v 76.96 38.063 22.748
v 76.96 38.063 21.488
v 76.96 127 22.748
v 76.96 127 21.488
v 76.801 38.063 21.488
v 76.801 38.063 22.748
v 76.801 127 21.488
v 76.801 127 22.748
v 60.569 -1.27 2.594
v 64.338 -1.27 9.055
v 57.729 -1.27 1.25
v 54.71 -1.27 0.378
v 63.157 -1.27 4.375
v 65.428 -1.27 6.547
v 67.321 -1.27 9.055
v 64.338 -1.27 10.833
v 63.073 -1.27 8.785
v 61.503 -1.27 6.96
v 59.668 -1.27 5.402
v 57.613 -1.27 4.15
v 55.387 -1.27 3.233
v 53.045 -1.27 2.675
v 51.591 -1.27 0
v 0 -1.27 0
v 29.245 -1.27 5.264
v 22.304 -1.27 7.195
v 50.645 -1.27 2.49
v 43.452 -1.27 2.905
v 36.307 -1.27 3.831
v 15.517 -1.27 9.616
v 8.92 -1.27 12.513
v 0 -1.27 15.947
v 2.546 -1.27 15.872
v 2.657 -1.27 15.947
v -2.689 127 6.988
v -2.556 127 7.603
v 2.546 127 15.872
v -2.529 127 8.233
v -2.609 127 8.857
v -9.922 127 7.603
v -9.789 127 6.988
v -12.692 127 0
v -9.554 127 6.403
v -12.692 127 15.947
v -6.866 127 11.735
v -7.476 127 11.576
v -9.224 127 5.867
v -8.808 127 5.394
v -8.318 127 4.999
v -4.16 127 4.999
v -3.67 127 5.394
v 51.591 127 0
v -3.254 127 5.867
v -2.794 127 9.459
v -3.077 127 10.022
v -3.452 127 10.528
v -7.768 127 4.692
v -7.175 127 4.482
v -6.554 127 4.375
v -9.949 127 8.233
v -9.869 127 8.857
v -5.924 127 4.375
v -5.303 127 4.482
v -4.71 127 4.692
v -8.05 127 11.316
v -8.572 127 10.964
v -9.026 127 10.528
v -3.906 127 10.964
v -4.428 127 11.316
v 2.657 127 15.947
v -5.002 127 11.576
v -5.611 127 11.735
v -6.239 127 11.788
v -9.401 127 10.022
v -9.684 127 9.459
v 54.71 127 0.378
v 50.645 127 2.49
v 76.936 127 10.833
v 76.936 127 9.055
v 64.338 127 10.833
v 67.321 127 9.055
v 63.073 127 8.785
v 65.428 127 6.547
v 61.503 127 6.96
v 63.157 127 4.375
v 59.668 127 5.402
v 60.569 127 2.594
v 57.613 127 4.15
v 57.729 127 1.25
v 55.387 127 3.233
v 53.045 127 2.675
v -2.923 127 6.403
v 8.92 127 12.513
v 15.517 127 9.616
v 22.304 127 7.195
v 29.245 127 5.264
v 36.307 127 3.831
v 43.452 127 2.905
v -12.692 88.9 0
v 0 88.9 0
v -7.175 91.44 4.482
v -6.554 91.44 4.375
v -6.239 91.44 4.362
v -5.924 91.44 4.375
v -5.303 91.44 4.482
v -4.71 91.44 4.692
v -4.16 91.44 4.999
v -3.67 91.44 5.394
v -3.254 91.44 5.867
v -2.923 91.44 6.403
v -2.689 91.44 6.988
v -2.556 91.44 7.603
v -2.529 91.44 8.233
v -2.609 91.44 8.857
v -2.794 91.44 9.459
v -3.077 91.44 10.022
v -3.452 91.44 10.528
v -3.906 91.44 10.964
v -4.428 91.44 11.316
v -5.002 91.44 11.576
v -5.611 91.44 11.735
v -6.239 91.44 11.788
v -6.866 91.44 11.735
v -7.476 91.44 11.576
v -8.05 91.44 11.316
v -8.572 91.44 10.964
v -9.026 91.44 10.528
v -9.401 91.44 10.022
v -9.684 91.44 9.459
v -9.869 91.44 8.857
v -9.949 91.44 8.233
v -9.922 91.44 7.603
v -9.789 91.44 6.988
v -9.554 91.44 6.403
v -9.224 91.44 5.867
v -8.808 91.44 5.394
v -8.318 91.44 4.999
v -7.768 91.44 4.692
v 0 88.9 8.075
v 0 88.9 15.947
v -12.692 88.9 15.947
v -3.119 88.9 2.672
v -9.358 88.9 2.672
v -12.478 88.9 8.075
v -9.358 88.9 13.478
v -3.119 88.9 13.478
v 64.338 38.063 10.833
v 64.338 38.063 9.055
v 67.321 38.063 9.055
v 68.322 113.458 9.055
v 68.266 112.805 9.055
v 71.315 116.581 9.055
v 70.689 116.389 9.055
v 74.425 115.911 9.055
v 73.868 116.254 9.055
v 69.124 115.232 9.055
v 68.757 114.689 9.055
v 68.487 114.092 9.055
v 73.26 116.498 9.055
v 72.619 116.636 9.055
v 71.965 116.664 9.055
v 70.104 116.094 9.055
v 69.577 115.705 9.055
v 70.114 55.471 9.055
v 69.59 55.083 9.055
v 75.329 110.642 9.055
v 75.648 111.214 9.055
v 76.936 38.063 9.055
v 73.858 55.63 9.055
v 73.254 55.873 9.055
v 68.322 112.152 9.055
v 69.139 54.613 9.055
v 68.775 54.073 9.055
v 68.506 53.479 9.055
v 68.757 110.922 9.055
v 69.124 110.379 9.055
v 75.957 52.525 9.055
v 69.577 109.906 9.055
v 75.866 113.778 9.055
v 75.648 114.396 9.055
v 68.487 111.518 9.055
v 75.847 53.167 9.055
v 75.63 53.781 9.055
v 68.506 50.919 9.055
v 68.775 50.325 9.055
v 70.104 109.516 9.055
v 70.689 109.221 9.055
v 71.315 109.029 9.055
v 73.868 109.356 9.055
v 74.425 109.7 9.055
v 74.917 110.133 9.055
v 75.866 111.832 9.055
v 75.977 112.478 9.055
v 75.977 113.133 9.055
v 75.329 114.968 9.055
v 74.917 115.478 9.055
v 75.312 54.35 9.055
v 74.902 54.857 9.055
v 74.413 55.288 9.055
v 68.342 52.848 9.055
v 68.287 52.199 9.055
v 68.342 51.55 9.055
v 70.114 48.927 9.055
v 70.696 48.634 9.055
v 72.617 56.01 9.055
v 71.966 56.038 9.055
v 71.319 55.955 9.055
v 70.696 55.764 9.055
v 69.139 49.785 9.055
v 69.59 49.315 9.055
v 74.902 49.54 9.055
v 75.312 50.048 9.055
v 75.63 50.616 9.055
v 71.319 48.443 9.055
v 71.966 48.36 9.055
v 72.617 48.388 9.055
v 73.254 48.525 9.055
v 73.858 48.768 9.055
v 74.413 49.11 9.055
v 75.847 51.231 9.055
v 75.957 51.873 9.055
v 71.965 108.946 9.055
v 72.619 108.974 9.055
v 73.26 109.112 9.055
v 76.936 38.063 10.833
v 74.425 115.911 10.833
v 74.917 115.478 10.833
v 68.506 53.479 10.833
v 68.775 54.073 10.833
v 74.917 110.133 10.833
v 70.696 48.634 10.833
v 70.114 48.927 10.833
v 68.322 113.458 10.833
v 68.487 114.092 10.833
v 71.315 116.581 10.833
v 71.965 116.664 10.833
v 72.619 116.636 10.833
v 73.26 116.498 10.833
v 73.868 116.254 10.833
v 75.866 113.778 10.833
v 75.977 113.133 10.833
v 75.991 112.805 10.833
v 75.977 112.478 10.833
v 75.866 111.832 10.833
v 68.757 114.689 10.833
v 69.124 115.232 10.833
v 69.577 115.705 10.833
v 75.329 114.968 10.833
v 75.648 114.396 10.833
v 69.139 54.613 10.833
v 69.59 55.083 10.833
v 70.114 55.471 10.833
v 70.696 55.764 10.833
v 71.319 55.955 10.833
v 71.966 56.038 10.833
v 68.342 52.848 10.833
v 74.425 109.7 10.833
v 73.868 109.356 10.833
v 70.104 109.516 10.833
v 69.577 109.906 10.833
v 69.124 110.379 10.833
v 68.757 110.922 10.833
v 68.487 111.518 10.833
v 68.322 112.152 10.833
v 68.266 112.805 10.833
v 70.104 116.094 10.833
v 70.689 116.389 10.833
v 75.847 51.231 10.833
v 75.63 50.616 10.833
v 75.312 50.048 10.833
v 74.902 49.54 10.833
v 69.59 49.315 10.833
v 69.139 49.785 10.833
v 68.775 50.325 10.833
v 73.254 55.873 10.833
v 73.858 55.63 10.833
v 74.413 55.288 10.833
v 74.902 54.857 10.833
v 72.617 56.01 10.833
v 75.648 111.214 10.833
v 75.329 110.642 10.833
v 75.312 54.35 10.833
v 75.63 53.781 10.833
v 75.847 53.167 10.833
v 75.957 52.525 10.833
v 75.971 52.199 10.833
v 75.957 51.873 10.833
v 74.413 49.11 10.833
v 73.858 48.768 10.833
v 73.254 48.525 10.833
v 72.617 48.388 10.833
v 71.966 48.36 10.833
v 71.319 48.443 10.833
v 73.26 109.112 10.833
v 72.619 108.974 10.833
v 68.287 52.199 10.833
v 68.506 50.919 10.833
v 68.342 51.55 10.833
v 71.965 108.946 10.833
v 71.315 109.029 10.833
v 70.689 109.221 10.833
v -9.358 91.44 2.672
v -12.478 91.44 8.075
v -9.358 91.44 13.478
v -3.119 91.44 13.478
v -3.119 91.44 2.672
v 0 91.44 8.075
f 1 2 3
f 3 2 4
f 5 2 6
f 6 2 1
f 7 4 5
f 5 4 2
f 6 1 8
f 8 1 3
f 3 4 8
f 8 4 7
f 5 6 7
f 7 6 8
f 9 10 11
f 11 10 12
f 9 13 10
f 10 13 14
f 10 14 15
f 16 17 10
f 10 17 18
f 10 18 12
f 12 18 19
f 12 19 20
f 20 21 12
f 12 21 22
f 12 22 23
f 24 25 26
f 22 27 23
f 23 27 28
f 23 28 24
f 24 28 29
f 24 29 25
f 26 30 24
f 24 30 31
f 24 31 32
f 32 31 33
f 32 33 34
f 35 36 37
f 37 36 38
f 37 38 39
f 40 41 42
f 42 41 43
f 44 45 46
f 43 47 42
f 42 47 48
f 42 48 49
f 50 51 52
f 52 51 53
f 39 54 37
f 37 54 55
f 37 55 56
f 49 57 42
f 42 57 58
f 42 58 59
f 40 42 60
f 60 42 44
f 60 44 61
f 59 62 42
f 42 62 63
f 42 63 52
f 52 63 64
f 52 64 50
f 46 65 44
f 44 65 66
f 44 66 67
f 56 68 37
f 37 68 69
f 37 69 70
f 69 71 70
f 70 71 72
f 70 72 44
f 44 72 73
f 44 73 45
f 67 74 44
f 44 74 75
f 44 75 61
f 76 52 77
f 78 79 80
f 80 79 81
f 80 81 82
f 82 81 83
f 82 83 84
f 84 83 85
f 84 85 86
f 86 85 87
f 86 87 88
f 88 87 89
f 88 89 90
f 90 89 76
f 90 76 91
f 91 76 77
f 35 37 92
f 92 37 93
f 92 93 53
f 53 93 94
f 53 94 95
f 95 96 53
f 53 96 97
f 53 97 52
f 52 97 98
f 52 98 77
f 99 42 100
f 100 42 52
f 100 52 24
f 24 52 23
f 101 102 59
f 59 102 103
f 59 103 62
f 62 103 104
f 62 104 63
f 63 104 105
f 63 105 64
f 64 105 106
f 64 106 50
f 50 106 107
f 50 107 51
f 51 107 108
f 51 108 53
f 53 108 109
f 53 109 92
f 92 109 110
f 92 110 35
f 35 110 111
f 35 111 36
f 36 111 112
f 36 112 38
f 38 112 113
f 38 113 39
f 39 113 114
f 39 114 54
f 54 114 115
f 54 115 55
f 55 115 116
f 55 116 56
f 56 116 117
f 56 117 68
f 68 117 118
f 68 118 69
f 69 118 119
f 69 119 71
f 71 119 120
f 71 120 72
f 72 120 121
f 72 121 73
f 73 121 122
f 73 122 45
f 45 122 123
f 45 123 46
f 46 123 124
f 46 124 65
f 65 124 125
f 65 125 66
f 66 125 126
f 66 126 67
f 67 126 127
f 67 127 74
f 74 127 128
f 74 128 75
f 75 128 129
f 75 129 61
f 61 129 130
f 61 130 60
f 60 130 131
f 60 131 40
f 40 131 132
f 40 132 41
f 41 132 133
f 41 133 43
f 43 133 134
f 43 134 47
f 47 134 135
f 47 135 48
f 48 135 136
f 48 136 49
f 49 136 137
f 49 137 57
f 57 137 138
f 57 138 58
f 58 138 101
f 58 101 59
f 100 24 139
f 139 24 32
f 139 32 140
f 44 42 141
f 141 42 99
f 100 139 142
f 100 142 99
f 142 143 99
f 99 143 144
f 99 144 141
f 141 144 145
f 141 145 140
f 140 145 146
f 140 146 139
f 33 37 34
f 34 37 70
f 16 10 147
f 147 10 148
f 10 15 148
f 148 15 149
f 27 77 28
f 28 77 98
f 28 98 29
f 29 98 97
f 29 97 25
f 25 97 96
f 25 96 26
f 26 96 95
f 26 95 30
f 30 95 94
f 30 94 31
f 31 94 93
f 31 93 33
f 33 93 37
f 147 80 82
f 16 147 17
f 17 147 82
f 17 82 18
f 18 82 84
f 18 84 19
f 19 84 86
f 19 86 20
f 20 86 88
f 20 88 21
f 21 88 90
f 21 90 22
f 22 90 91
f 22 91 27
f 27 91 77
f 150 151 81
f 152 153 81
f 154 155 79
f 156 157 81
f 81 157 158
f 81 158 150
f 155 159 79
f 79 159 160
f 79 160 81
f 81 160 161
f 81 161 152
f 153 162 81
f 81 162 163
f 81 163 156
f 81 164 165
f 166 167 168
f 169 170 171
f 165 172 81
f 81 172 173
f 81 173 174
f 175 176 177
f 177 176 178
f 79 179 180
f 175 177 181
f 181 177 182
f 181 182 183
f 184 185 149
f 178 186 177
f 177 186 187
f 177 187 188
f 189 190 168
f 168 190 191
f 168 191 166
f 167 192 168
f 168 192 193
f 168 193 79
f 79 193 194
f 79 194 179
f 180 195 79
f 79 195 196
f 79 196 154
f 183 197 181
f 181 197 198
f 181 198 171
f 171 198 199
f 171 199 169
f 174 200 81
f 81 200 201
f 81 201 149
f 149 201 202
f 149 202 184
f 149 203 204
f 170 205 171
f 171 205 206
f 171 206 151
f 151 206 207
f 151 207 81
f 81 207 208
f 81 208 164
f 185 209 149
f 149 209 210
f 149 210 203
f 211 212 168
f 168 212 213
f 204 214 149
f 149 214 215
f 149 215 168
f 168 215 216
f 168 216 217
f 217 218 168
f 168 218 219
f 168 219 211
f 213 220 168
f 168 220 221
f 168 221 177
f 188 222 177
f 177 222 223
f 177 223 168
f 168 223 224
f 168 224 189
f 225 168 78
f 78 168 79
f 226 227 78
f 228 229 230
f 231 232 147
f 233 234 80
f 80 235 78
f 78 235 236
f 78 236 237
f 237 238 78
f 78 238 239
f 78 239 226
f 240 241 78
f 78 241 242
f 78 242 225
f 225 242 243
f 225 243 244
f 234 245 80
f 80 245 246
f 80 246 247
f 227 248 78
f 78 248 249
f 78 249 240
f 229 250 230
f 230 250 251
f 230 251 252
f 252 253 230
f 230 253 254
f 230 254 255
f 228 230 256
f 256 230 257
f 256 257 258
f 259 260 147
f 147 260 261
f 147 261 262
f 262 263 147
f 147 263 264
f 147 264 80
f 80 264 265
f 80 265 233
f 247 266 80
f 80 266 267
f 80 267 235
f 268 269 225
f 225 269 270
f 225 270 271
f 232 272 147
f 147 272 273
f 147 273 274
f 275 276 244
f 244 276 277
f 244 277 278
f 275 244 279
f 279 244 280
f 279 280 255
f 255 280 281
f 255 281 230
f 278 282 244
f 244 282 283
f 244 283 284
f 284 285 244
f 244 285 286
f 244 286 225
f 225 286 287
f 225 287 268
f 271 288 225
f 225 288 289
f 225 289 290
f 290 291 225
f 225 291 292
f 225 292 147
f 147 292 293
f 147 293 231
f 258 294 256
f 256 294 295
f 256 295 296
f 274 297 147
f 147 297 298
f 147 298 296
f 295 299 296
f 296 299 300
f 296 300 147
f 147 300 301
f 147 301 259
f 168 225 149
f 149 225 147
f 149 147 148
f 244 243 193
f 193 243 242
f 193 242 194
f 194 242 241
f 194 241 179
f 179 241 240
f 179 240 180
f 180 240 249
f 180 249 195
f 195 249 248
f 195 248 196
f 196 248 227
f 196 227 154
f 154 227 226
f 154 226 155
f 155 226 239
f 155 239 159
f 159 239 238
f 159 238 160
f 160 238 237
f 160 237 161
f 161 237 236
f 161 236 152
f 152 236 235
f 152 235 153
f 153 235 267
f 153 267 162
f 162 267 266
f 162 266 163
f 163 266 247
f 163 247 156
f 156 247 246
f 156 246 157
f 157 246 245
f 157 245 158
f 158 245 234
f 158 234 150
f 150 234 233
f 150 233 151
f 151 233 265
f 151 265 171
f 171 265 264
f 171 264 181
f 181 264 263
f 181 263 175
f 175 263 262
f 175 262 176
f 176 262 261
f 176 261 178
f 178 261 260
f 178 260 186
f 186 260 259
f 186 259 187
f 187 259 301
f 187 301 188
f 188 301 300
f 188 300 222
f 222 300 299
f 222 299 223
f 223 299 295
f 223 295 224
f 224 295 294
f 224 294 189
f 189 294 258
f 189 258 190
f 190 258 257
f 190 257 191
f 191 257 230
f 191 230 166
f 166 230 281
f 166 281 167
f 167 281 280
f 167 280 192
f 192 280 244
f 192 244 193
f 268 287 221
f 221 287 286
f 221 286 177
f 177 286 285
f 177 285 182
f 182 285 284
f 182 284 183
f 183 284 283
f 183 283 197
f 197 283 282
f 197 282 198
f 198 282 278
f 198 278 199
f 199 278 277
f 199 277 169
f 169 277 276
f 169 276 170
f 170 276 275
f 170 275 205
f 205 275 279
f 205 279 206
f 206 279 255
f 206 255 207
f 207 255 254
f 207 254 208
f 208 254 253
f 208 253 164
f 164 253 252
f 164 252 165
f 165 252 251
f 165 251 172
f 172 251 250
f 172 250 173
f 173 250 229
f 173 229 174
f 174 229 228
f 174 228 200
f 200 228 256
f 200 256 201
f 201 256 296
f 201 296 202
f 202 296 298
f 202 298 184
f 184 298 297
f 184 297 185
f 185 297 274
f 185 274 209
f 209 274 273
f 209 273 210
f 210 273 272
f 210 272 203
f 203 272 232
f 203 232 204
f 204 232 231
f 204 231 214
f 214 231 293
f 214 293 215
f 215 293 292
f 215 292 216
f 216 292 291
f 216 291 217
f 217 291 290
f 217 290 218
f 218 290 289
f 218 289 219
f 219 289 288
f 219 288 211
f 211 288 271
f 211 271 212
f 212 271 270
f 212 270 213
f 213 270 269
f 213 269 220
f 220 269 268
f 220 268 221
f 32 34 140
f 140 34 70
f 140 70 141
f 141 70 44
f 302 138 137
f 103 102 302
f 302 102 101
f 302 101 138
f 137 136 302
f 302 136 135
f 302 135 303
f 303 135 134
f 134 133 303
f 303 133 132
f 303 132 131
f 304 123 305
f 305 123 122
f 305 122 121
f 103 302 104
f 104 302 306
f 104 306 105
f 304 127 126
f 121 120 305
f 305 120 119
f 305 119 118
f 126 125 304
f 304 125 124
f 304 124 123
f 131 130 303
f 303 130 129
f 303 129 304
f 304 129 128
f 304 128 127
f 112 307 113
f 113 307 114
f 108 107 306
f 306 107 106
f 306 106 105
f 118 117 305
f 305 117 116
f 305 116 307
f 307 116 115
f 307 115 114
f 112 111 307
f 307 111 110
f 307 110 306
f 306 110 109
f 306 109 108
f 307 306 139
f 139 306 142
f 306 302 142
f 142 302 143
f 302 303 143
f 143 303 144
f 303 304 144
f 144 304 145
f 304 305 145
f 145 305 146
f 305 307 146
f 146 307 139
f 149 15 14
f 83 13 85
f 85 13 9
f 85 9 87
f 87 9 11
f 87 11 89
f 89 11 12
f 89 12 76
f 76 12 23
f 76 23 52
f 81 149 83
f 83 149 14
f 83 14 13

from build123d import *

# Parameters (mm, degrees)
BOSS_EXTRUDE1_DEPTH      = 127
BOSS_EXTRUDE1_DEPTH_BACK = 1.27
SKETCH1_W                = 67.320921889
SKETCH1_H                = 31.744824956
BOSS_EXTRUDE2_DEPTH      = 38.1
SKETCH3_R                = 3.798675559
CUT_EXTRUDE1_DEPTH       = 53.34
SKETCH4_R                = 3.713025355
CUT_EXTRUDE2_DEPTH       = 72.898
CUT_EXTRUDE3_DEPTH       = 177.8
CUT_EXTRUDE4_DEPTH       = 140.752657
SKETCH7_W                = 12.598265338
SKETCH7_H                = 1.777860749
BOSS_EXTRUDE3_DEPTH      = 88.936657
SKETCH8_W                = 12.621827424
SKETCH8_H                = 1.259783395
BOSS_EXTRUDE4_DEPTH      = 88.936657
SKETCH9_R                = 3.862443539
CUT_EXTRUDE5_DEPTH       = 31.278657
SKETCH10_R               = 3.842033399
CUT_EXTRUDE6_DEPTH       = 32.548657
SKETCH12_W               = 89.492799736
SKETCH12_H               = 16.90476451
CUT_EXTRUDE7_DEPTH       = 138.176
CUT_EXTRUDE8_DEPTH       = 2.54
CUT_EXTRUDE9_DEPTH       = 132.08


with BuildPart() as part:
    # Sketch1 → Boss-Extrude1 (new, two sides: drawn at the far end of the back side and taken through both)
    with BuildSketch(Plane(origin=(0, 0, 0), x_dir=(1, 0, 0), z_dir=(0, 1, 0)).offset(-BOSS_EXTRUDE1_DEPTH_BACK)):
        with Locations((33.660460945, -15.872412478)):
            Rectangle(SKETCH1_W, SKETCH1_H)
    extrude(amount=BOSS_EXTRUDE1_DEPTH + BOSS_EXTRUDE1_DEPTH_BACK)

    # Sketch2 → Boss-Extrude2 (add)
    with BuildSketch(Plane(origin=(0, 127, 0), x_dir=(1, 0, 0), z_dir=(0, 1, 0))):
        Polygon((0, 0), (-12.691812955, 0), (-12.691812955, -31.893008725), (0, -31.744824956), align=None)
    extrude(amount=-BOSS_EXTRUDE2_DEPTH)

    # Sketch3 → Cut-Extrude1 (cut)
    with BuildSketch(Plane(origin=(0, 127, 0), x_dir=(1, 0, 0), z_dir=(0, 1, 0))):
        with Locations(Location((-6.345906477, -23.919756544, 0), (0, 0, 270))):
            Circle(SKETCH3_R)
    extrude(amount=-CUT_EXTRUDE1_DEPTH, mode=Mode.SUBTRACT)

    # Sketch4 → Cut-Extrude2 (cut)
    with BuildSketch(Plane(origin=(0, 127, 0), x_dir=(1, 0, 0), z_dir=(0, 1, 0))):
        with Locations(Location((-6.238928802, -8.074927798, 0), (0, 0, 270))):
            Circle(SKETCH4_R)
    extrude(amount=-CUT_EXTRUDE2_DEPTH, mode=Mode.SUBTRACT)

    # Sketch5 → Cut-Extrude3 (cut)
    with BuildSketch(Plane(origin=(0, 127, 0), x_dir=(1, 0, 0), z_dir=(0, 1, 0))):
        with BuildLine():
            ThreePointArc((64.884408785, -12.014730435), (65.337632333, -15.775676375), (64.884408785, -19.536622316))
            ThreePointArc((64.884408785, -19.536622316), (59.764565977, -27.313148833), (50.645455775, -29.191707899))
            ThreePointArc((50.645455775, -29.191707899), (25.520797189, -26.413912497), (2.545998088, -15.872412478))
            ThreePointArc((2.545998088, -15.872412478), (25.757322084, -6.167748294), (50.645455775, -2.489858962))
            ThreePointArc((50.645455775, -2.489858962), (59.21392875, -5.086156005), (64.884408785, -12.014730435))
        make_face()
    extrude(amount=-CUT_EXTRUDE3_DEPTH, mode=Mode.SUBTRACT)

    # Sketch6 → Cut-Extrude4 (cut)
    with BuildSketch(Plane(origin=(0, 127, 0), x_dir=(1, 0, 0), z_dir=(0, 1, 0))):
        Polygon((64.338150371, -15.872412478), (64.338150371, -22.747923603), (67.320921889, -22.747923603), (67.320921889, -9.054734185), (64.338150371, -9.054734185), align=None)
    extrude(amount=-CUT_EXTRUDE4_DEPTH, mode=Mode.SUBTRACT)

    # Sketch7 → Boss-Extrude3 (add)
    with BuildSketch(Plane(origin=(0, 127, 0), x_dir=(1, 0, 0), z_dir=(0, 1, 0))):
        with Locations((70.63728304, -9.94366456)):
            Rectangle(SKETCH7_W, SKETCH7_H)
    extrude(amount=-BOSS_EXTRUDE3_DEPTH)

    # Sketch8 → Boss-Extrude4 (add)
    with BuildSketch(Plane(origin=(0, 127, 0), x_dir=(1, 0, 0), z_dir=(0, 1, 0))):
        with Locations((70.649064083, -22.118031906)):
            Rectangle(SKETCH8_W, SKETCH8_H)
    extrude(amount=-BOSS_EXTRUDE4_DEPTH)

    # Sketch9 → Cut-Extrude5 (cut)
    with BuildSketch(Plane(origin=(0, 0, 9.054734185), x_dir=(-1, 0, 0), z_dir=(0, 0, -1))):
        with Locations((-72.128668799, 112.805210201)):
            Circle(SKETCH9_R)
    extrude(amount=-CUT_EXTRUDE5_DEPTH, mode=Mode.SUBTRACT)

    # Sketch10 → Cut-Extrude6 (cut)
    with BuildSketch(Plane(origin=(0, 0, 9.054734185), x_dir=(-1, 0, 0), z_dir=(0, 0, -1))):
        with Locations((-72.128668799, 52.198950376)):
            Circle(SKETCH10_R)
    extrude(amount=-CUT_EXTRUDE6_DEPTH, mode=Mode.SUBTRACT)

    # Sketch12 → Cut-Extrude7 (cut)
    with BuildSketch(Plane(origin=(0, 127, 0), x_dir=(1, 0, 0), z_dir=(0, 1, 0))):
        with Locations((32.054586913, -24.398886618)):
            Rectangle(SKETCH12_W, SKETCH12_H)
    extrude(amount=-CUT_EXTRUDE7_DEPTH, mode=Mode.SUBTRACT)


with BuildPart() as cut_extrude7_piece_1:
    # of the separate pieces the step leaves, piece 1, a body of its own (cut_extrude7_pieces)
    add(part.part.solids().sort_by_distance((67.320921889, 127, 0))[0])

    # Sketch13 → Cut-Extrude8 (cut)
    with BuildSketch(Plane.XZ.offset(-88.9)):
        Polygon((0, 8.074927798), (-3.119464401, 13.477998634), (-9.358393203, 13.477998634), (-12.477857605, 8.074927798), (-9.358393203, 2.671856963), (-3.119464401, 2.671856963), align=None)
    extrude(amount=-CUT_EXTRUDE8_DEPTH, mode=Mode.SUBTRACT)

    # Sketch14 → Cut-Extrude9 (cut)
    with BuildSketch(Plane(origin=(0, 127, 0), x_dir=(1, 0, 0), z_dir=(0, 1, 0))):
        with BuildLine():
            Line((67.320921889, 0), (51.591028303, 0))
            ThreePointArc((51.591028303, 0), (60.568888098, -2.594013475), (67.320921889, -9.054734185))
            Line((67.320921889, -9.054734185), (67.320921889, 0))
        make_face()
    extrude(amount=-CUT_EXTRUDE9_DEPTH, mode=Mode.SUBTRACT)


with BuildPart() as cut_extrude7_piece_2:
    # of the separate pieces the step leaves, piece 2, a body of its own (cut_extrude7_pieces)
    add(part.part.solids().sort_by_distance((76.800986781, 127, 21.488140208))[0])


solid = Compound([cut_extrude7_piece_1.part, cut_extrude7_piece_2.part])
